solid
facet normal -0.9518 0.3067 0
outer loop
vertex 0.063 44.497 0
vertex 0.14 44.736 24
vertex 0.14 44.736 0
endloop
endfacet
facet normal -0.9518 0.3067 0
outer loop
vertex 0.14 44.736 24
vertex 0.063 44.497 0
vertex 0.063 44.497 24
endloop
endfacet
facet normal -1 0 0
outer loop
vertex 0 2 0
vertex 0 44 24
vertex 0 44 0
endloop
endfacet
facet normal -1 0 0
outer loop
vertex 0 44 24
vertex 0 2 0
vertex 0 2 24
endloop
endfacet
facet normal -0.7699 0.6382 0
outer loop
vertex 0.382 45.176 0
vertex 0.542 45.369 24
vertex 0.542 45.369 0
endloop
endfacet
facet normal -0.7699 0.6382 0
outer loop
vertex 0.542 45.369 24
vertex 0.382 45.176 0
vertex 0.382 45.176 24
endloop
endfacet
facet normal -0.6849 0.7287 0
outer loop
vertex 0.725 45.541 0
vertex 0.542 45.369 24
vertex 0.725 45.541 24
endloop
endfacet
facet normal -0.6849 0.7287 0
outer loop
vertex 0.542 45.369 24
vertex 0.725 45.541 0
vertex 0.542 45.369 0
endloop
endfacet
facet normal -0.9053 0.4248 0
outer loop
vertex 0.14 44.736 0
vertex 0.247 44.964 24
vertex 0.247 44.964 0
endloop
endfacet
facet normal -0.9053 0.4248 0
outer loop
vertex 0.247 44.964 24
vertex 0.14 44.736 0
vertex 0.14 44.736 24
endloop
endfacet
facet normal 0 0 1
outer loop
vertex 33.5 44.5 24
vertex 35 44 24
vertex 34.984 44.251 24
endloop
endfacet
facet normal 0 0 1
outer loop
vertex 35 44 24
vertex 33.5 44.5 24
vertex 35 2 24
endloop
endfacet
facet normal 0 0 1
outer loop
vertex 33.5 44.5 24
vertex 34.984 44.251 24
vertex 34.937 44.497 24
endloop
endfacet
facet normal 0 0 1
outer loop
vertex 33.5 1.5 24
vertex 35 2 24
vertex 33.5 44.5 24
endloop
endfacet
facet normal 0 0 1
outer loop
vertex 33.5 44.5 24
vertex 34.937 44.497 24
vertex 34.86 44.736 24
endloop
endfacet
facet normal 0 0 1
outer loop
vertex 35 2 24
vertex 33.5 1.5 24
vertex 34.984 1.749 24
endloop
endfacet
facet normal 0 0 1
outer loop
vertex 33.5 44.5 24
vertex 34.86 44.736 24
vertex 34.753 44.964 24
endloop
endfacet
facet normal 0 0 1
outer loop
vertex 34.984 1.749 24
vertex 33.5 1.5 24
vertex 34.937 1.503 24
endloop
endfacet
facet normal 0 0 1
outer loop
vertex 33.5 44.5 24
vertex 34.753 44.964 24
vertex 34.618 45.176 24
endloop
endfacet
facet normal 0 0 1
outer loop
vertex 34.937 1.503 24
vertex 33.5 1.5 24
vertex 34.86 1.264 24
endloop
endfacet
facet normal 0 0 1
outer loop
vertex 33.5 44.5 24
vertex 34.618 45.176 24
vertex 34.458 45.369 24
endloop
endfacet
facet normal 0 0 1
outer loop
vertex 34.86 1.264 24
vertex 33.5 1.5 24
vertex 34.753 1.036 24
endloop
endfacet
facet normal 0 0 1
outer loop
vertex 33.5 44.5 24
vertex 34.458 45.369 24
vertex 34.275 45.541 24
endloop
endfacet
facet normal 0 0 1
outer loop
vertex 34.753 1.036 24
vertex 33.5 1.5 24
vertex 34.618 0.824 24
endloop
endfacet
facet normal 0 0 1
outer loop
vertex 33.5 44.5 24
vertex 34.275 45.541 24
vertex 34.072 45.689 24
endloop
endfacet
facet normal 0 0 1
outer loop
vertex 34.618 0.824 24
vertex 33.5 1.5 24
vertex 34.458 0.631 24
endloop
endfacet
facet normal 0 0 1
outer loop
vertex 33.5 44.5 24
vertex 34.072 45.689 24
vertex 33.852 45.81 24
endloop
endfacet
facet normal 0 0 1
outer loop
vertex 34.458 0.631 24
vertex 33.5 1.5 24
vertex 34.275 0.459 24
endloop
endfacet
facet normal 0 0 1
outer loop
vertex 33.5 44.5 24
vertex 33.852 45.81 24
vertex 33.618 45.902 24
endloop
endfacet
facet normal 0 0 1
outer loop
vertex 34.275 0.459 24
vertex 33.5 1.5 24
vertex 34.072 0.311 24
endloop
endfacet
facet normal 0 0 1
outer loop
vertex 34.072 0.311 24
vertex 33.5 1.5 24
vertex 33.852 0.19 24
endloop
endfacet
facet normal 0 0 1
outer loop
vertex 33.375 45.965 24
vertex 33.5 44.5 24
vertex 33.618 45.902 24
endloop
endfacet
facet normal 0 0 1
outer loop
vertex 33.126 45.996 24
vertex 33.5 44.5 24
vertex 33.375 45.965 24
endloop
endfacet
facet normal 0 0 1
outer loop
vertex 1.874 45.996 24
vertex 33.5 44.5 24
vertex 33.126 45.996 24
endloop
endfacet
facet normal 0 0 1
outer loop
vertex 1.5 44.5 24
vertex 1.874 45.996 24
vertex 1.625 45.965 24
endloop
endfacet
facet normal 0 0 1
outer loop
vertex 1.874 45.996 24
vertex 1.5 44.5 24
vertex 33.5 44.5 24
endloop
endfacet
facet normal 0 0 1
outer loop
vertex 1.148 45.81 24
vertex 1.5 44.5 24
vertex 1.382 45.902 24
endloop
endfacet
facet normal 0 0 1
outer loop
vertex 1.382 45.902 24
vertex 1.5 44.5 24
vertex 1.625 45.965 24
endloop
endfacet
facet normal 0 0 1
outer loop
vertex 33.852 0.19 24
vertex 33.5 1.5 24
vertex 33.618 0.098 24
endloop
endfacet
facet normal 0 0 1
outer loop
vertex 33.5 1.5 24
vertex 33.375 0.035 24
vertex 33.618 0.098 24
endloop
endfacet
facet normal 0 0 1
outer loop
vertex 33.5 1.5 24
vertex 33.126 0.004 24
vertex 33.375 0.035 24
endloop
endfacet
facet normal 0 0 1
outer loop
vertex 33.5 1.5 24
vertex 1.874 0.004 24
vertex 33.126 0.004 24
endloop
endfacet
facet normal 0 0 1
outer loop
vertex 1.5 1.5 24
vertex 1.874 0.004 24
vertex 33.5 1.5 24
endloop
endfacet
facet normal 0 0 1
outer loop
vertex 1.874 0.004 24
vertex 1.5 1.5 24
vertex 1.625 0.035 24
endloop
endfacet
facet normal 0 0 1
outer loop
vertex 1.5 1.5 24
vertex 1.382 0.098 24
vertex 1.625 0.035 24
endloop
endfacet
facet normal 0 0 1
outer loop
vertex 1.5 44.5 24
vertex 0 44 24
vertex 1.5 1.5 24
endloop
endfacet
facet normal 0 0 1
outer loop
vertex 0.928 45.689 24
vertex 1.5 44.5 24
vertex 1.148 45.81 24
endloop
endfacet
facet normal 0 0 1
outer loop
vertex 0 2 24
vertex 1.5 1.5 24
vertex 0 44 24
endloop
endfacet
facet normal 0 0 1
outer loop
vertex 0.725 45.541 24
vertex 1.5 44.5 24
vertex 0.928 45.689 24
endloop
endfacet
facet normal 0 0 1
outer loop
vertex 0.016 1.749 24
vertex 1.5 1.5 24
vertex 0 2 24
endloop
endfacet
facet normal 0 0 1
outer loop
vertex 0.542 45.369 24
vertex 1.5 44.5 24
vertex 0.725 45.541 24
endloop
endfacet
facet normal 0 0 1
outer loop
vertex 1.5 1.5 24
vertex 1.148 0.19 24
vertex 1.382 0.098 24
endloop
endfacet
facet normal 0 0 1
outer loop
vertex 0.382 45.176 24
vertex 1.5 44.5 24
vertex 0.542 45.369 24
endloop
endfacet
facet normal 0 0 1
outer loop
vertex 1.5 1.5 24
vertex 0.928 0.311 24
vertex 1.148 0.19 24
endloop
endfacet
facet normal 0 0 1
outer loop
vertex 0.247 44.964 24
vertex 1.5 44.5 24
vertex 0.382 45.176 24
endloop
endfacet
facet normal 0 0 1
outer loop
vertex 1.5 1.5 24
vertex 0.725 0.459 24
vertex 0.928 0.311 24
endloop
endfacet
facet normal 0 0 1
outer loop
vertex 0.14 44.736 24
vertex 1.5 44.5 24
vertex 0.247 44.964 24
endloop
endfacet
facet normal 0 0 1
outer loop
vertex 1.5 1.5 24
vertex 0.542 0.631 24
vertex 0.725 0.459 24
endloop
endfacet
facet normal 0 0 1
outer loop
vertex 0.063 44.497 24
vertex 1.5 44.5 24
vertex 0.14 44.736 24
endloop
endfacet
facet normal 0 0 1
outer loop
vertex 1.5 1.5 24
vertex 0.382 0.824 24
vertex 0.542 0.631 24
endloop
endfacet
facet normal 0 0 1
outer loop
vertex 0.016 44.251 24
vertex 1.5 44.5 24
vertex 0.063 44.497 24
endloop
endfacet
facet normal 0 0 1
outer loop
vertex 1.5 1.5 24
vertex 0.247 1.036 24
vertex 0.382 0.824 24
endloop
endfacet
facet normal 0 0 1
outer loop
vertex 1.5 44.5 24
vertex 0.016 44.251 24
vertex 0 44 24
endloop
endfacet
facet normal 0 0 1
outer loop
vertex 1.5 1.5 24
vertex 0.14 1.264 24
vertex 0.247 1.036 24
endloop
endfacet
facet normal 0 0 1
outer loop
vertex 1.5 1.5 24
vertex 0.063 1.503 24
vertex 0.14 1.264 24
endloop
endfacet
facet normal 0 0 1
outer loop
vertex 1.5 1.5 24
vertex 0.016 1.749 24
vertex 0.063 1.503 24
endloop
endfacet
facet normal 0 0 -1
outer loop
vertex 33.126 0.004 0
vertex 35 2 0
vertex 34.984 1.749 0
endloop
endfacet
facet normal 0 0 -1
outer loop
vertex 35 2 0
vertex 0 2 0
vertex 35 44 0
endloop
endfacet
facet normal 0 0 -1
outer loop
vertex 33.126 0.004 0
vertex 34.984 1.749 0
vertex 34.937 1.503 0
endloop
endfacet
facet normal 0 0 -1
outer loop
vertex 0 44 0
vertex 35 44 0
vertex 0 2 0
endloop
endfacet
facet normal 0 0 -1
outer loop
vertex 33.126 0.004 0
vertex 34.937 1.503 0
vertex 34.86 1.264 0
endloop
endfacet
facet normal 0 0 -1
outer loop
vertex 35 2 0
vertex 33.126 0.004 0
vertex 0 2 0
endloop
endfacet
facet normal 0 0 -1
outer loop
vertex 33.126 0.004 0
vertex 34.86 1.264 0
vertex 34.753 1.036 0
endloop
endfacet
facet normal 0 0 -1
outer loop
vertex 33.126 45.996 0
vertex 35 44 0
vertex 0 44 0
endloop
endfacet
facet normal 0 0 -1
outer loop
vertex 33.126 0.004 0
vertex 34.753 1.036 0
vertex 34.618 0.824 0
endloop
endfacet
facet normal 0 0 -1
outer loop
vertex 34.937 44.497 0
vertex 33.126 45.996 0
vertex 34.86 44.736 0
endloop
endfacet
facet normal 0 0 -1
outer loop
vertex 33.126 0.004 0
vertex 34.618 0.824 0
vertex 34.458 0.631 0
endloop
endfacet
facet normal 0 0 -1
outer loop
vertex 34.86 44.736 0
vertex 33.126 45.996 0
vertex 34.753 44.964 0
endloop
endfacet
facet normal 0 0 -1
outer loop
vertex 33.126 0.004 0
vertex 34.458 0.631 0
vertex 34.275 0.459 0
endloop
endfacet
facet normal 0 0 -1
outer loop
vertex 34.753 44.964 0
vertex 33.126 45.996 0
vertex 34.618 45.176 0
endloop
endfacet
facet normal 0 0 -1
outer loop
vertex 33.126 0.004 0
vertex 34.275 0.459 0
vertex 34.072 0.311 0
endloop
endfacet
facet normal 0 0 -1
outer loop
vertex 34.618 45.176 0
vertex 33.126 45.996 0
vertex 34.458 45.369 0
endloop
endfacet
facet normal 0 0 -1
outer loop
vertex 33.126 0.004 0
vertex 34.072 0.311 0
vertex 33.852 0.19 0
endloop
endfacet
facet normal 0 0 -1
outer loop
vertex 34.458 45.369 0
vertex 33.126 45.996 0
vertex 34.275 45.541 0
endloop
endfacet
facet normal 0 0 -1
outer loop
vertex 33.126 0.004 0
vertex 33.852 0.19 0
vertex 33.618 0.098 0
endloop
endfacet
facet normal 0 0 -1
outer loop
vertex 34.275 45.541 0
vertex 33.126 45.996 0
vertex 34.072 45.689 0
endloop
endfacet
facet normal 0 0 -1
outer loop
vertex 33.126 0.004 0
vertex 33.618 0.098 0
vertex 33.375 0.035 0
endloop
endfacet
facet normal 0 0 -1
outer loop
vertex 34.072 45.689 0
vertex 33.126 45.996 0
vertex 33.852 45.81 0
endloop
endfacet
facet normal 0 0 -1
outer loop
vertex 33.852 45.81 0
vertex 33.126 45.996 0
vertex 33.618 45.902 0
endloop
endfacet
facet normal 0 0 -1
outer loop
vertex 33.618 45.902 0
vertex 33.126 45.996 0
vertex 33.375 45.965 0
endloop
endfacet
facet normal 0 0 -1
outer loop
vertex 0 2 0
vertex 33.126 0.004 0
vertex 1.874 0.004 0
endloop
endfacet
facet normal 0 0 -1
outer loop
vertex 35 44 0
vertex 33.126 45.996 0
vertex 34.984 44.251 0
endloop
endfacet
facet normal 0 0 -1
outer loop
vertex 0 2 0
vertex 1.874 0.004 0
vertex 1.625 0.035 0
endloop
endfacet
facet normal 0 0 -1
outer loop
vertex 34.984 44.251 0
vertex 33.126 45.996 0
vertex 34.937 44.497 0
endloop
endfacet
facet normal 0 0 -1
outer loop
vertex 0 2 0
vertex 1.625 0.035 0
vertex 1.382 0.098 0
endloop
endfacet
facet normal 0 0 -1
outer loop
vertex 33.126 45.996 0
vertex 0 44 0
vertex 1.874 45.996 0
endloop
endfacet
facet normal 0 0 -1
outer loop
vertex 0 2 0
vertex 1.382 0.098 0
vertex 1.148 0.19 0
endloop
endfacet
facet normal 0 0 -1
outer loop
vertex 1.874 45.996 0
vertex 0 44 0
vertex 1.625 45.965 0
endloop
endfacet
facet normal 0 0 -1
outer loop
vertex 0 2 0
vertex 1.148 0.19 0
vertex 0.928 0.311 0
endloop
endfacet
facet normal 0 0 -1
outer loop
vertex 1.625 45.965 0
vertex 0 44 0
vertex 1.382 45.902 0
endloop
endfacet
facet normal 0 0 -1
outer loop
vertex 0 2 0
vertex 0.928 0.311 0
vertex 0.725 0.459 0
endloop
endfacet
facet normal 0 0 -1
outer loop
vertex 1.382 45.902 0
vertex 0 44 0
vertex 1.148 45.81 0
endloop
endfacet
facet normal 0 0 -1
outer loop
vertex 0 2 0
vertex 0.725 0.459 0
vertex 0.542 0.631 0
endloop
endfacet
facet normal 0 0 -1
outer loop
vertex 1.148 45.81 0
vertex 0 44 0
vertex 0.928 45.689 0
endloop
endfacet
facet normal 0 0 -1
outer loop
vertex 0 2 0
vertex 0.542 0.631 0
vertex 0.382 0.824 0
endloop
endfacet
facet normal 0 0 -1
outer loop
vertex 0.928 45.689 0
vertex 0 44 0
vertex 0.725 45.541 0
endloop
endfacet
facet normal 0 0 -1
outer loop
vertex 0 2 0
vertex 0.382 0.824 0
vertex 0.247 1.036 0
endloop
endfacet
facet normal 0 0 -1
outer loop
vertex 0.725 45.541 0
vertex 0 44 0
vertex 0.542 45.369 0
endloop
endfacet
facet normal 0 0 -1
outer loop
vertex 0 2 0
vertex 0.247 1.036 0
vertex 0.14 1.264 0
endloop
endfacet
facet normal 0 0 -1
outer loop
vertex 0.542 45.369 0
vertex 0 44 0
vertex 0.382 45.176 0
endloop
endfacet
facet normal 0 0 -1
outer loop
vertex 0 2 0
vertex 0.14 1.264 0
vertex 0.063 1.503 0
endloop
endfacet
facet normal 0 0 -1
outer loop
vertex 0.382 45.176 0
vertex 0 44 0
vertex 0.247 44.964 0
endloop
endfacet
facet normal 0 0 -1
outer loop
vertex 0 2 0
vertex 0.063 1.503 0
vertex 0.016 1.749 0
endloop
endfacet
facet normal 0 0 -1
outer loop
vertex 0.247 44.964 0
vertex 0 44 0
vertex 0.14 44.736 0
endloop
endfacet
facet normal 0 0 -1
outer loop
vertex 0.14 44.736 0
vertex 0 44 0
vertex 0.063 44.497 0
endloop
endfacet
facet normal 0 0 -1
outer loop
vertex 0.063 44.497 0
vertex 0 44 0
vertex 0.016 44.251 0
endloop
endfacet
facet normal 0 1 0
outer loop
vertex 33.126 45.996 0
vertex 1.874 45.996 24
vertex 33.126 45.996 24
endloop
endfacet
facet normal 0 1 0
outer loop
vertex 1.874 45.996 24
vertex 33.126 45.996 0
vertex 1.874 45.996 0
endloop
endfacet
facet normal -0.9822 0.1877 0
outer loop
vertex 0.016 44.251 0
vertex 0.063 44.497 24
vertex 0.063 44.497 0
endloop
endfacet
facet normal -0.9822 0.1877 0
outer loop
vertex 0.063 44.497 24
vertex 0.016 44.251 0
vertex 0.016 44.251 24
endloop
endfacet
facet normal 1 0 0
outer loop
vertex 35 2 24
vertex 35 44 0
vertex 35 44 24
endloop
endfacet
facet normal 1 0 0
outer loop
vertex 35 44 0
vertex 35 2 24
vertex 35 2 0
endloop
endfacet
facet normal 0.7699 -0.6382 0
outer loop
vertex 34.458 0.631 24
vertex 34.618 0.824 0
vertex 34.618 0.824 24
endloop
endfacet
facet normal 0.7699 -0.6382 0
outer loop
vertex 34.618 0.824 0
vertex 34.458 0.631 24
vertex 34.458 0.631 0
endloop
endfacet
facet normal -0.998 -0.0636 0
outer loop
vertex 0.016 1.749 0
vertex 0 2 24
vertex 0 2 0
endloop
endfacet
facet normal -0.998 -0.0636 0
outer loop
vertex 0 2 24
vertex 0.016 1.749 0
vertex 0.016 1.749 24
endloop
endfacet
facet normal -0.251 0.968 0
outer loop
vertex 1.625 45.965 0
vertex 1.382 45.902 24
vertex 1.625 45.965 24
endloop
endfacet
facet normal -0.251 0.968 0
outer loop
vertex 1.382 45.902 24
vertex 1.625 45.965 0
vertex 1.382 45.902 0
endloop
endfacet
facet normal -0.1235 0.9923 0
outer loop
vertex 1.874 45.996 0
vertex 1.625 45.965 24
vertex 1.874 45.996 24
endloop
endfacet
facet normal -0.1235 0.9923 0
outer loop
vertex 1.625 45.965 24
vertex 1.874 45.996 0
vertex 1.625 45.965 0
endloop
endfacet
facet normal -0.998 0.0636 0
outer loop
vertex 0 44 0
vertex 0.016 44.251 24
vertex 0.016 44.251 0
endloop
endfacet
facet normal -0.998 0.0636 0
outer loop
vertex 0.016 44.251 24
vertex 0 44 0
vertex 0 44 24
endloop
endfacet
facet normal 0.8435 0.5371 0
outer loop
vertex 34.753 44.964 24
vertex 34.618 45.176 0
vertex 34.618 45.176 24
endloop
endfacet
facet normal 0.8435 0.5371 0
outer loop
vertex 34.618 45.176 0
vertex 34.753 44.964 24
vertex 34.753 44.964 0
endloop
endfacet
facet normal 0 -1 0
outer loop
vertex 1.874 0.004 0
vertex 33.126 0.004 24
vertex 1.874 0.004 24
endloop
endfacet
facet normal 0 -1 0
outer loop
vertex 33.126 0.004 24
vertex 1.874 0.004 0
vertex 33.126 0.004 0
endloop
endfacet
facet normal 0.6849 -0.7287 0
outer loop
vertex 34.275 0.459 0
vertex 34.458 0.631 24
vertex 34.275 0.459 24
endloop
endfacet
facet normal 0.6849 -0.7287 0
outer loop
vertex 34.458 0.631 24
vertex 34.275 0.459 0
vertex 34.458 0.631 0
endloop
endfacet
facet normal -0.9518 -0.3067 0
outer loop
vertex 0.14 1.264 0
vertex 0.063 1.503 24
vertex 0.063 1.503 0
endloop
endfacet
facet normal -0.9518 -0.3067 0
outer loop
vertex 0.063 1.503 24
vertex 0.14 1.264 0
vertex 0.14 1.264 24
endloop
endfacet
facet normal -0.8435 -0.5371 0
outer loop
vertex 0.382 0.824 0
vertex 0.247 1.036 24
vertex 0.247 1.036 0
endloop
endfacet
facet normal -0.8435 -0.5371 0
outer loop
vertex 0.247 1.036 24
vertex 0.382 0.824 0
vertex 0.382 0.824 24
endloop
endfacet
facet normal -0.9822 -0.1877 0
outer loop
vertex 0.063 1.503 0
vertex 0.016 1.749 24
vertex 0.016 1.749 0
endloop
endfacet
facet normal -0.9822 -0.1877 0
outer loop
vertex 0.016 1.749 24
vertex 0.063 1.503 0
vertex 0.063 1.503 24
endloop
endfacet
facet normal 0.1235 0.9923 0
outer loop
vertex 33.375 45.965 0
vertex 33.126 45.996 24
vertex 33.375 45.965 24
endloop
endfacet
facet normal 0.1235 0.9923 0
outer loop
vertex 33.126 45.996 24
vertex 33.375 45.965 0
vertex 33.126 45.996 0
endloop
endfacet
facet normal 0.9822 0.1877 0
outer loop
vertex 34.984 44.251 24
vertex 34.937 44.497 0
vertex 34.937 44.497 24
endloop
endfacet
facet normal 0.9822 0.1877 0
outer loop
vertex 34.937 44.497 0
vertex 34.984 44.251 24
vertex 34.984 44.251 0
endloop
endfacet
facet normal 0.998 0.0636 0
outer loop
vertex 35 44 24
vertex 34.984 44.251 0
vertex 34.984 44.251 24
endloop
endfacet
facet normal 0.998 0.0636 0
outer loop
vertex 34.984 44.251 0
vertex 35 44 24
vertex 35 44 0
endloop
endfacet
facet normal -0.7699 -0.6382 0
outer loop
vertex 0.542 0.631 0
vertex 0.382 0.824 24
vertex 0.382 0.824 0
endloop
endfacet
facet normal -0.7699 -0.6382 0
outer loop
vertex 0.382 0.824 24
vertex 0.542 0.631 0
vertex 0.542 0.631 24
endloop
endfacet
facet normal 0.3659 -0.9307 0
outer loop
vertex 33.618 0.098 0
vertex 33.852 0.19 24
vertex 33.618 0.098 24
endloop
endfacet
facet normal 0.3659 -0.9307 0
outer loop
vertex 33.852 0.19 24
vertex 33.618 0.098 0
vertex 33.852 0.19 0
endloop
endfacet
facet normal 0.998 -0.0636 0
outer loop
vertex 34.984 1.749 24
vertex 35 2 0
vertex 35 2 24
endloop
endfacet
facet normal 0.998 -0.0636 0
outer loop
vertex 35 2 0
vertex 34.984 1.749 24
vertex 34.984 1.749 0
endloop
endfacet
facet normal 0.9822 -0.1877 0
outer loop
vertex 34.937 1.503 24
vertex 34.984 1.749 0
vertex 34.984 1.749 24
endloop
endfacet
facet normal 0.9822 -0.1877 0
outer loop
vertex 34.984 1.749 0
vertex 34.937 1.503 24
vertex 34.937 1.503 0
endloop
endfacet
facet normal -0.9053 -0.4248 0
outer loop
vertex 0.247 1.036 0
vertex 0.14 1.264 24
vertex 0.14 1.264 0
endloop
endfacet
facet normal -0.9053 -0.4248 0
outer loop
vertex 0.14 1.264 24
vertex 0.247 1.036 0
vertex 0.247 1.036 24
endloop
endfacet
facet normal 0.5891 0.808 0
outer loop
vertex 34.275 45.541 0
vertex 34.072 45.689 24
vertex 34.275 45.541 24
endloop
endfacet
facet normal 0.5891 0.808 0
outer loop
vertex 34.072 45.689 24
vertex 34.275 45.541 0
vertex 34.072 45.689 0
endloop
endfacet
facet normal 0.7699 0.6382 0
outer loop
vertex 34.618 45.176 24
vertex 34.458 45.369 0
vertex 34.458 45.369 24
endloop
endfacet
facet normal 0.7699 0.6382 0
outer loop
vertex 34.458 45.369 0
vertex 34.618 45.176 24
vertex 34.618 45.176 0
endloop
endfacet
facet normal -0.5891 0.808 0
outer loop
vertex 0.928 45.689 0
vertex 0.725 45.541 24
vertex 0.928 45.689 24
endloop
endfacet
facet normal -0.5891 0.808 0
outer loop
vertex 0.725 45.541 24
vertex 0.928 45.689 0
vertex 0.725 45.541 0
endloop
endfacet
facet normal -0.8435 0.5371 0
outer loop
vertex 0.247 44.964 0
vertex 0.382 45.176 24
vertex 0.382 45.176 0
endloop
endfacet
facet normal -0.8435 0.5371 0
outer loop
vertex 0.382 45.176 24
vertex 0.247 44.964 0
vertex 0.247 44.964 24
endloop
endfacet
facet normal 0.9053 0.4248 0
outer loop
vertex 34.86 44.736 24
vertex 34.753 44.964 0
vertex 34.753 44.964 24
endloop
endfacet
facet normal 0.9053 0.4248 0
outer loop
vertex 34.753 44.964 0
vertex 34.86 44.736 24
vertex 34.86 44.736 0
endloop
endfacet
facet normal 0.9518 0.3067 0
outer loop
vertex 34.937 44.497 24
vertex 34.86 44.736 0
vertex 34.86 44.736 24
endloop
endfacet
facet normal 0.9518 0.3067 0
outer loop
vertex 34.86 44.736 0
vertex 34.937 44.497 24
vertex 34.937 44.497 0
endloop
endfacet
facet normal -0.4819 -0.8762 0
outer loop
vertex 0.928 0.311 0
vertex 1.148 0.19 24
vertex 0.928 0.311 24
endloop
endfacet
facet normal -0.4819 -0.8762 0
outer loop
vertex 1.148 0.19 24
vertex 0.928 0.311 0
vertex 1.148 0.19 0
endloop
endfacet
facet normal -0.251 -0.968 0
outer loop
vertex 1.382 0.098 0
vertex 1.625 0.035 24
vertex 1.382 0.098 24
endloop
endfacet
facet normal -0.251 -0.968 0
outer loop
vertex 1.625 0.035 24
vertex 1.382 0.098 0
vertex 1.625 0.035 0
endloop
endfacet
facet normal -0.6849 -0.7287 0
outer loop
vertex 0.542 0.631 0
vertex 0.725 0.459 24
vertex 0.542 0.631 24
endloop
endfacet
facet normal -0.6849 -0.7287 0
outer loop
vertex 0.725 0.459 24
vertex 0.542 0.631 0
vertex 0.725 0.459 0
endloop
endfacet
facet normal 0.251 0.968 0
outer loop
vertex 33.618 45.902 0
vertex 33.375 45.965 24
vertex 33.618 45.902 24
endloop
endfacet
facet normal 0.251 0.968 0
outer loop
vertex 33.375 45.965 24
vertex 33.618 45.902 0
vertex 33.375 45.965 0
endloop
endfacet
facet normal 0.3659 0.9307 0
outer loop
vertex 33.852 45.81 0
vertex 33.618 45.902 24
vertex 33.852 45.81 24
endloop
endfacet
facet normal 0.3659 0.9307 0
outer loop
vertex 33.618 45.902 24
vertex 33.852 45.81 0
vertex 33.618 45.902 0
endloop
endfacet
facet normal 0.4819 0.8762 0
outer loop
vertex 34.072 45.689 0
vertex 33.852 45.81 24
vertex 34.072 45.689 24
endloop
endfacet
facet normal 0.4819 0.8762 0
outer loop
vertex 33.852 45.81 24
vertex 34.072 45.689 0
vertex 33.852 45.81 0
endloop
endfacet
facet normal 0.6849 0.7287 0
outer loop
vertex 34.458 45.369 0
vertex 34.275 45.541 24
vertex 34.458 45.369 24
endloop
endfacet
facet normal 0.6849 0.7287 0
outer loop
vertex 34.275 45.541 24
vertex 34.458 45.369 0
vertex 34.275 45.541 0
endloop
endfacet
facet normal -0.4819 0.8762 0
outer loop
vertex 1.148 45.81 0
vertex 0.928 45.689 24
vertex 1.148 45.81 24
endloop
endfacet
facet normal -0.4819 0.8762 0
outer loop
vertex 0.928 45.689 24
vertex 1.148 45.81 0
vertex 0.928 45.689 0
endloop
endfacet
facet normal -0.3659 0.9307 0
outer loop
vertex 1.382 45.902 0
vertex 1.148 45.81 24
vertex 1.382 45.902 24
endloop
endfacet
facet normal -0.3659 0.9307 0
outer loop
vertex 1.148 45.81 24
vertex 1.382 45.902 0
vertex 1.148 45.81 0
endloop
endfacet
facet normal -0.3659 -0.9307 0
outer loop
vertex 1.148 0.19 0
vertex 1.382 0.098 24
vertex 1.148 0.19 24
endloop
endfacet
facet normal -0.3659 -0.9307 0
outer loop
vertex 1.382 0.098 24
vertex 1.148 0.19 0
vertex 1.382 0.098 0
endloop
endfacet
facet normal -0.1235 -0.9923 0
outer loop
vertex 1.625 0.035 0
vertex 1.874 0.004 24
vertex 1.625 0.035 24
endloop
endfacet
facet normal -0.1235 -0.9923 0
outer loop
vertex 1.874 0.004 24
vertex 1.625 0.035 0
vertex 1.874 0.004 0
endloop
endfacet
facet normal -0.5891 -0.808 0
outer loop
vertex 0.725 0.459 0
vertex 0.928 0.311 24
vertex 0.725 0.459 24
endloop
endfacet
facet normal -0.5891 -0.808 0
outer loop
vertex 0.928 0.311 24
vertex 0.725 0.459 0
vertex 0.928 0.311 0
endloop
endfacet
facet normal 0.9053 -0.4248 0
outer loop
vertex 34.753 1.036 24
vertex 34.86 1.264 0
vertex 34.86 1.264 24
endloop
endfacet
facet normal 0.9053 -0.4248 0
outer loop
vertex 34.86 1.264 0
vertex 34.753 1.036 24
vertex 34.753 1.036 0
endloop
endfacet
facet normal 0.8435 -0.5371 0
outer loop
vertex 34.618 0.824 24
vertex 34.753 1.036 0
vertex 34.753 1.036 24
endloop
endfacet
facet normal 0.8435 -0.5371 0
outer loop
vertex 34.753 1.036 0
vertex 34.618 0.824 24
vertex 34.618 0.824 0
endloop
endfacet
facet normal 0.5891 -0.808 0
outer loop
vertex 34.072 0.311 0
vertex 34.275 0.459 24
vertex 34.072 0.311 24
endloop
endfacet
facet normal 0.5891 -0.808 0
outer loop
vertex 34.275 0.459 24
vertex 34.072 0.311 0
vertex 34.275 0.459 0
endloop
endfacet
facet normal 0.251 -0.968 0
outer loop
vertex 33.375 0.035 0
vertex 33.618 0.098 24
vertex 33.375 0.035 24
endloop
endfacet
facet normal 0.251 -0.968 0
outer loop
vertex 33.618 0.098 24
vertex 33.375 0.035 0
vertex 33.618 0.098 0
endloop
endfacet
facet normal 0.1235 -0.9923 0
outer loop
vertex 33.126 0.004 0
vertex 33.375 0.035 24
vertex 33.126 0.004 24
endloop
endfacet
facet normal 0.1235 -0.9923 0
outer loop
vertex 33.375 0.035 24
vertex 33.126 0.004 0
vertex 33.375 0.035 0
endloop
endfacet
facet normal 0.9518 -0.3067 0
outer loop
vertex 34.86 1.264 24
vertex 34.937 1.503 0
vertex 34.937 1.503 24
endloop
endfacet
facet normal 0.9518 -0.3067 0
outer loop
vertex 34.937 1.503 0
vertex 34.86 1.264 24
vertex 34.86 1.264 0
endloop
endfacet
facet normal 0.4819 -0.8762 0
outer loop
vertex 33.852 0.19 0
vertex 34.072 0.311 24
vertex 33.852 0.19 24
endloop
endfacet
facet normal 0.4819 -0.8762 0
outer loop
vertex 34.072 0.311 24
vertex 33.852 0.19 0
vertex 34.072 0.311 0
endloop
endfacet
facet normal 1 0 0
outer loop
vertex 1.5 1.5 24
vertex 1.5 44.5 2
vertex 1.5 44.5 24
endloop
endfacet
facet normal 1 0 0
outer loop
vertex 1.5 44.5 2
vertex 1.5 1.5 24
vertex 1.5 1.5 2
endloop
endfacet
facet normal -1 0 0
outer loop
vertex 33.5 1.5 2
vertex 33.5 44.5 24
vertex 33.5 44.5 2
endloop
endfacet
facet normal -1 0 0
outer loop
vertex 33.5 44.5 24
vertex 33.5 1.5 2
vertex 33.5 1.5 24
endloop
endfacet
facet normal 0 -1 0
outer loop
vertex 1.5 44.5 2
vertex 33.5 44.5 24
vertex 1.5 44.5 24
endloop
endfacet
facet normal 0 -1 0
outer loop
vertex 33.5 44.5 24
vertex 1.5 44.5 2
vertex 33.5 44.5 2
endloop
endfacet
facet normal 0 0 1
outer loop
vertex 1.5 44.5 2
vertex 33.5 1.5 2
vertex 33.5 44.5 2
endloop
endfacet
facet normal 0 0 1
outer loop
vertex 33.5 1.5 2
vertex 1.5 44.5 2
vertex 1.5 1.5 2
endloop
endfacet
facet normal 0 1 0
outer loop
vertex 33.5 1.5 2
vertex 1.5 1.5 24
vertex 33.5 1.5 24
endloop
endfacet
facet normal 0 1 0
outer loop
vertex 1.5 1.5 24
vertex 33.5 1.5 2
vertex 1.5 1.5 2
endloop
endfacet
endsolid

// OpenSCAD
length = 35;
width = 46;
height = 24;
floorThickness = 2;
wallThickness = 1.5;

difference() {    
    $fn=50;
    minkowski()
    {
      translate([2,2,0])
        cube([length-4, width-4, height - 1]);
      cylinder(r=2,h=1);
    }
    
    //cube([length, width, height]);
    translate([wallThickness, wallThickness, floorThickness])
        cube([length - wallThickness * 2, width - wallThickness * 2, height - floorThickness]);
}
